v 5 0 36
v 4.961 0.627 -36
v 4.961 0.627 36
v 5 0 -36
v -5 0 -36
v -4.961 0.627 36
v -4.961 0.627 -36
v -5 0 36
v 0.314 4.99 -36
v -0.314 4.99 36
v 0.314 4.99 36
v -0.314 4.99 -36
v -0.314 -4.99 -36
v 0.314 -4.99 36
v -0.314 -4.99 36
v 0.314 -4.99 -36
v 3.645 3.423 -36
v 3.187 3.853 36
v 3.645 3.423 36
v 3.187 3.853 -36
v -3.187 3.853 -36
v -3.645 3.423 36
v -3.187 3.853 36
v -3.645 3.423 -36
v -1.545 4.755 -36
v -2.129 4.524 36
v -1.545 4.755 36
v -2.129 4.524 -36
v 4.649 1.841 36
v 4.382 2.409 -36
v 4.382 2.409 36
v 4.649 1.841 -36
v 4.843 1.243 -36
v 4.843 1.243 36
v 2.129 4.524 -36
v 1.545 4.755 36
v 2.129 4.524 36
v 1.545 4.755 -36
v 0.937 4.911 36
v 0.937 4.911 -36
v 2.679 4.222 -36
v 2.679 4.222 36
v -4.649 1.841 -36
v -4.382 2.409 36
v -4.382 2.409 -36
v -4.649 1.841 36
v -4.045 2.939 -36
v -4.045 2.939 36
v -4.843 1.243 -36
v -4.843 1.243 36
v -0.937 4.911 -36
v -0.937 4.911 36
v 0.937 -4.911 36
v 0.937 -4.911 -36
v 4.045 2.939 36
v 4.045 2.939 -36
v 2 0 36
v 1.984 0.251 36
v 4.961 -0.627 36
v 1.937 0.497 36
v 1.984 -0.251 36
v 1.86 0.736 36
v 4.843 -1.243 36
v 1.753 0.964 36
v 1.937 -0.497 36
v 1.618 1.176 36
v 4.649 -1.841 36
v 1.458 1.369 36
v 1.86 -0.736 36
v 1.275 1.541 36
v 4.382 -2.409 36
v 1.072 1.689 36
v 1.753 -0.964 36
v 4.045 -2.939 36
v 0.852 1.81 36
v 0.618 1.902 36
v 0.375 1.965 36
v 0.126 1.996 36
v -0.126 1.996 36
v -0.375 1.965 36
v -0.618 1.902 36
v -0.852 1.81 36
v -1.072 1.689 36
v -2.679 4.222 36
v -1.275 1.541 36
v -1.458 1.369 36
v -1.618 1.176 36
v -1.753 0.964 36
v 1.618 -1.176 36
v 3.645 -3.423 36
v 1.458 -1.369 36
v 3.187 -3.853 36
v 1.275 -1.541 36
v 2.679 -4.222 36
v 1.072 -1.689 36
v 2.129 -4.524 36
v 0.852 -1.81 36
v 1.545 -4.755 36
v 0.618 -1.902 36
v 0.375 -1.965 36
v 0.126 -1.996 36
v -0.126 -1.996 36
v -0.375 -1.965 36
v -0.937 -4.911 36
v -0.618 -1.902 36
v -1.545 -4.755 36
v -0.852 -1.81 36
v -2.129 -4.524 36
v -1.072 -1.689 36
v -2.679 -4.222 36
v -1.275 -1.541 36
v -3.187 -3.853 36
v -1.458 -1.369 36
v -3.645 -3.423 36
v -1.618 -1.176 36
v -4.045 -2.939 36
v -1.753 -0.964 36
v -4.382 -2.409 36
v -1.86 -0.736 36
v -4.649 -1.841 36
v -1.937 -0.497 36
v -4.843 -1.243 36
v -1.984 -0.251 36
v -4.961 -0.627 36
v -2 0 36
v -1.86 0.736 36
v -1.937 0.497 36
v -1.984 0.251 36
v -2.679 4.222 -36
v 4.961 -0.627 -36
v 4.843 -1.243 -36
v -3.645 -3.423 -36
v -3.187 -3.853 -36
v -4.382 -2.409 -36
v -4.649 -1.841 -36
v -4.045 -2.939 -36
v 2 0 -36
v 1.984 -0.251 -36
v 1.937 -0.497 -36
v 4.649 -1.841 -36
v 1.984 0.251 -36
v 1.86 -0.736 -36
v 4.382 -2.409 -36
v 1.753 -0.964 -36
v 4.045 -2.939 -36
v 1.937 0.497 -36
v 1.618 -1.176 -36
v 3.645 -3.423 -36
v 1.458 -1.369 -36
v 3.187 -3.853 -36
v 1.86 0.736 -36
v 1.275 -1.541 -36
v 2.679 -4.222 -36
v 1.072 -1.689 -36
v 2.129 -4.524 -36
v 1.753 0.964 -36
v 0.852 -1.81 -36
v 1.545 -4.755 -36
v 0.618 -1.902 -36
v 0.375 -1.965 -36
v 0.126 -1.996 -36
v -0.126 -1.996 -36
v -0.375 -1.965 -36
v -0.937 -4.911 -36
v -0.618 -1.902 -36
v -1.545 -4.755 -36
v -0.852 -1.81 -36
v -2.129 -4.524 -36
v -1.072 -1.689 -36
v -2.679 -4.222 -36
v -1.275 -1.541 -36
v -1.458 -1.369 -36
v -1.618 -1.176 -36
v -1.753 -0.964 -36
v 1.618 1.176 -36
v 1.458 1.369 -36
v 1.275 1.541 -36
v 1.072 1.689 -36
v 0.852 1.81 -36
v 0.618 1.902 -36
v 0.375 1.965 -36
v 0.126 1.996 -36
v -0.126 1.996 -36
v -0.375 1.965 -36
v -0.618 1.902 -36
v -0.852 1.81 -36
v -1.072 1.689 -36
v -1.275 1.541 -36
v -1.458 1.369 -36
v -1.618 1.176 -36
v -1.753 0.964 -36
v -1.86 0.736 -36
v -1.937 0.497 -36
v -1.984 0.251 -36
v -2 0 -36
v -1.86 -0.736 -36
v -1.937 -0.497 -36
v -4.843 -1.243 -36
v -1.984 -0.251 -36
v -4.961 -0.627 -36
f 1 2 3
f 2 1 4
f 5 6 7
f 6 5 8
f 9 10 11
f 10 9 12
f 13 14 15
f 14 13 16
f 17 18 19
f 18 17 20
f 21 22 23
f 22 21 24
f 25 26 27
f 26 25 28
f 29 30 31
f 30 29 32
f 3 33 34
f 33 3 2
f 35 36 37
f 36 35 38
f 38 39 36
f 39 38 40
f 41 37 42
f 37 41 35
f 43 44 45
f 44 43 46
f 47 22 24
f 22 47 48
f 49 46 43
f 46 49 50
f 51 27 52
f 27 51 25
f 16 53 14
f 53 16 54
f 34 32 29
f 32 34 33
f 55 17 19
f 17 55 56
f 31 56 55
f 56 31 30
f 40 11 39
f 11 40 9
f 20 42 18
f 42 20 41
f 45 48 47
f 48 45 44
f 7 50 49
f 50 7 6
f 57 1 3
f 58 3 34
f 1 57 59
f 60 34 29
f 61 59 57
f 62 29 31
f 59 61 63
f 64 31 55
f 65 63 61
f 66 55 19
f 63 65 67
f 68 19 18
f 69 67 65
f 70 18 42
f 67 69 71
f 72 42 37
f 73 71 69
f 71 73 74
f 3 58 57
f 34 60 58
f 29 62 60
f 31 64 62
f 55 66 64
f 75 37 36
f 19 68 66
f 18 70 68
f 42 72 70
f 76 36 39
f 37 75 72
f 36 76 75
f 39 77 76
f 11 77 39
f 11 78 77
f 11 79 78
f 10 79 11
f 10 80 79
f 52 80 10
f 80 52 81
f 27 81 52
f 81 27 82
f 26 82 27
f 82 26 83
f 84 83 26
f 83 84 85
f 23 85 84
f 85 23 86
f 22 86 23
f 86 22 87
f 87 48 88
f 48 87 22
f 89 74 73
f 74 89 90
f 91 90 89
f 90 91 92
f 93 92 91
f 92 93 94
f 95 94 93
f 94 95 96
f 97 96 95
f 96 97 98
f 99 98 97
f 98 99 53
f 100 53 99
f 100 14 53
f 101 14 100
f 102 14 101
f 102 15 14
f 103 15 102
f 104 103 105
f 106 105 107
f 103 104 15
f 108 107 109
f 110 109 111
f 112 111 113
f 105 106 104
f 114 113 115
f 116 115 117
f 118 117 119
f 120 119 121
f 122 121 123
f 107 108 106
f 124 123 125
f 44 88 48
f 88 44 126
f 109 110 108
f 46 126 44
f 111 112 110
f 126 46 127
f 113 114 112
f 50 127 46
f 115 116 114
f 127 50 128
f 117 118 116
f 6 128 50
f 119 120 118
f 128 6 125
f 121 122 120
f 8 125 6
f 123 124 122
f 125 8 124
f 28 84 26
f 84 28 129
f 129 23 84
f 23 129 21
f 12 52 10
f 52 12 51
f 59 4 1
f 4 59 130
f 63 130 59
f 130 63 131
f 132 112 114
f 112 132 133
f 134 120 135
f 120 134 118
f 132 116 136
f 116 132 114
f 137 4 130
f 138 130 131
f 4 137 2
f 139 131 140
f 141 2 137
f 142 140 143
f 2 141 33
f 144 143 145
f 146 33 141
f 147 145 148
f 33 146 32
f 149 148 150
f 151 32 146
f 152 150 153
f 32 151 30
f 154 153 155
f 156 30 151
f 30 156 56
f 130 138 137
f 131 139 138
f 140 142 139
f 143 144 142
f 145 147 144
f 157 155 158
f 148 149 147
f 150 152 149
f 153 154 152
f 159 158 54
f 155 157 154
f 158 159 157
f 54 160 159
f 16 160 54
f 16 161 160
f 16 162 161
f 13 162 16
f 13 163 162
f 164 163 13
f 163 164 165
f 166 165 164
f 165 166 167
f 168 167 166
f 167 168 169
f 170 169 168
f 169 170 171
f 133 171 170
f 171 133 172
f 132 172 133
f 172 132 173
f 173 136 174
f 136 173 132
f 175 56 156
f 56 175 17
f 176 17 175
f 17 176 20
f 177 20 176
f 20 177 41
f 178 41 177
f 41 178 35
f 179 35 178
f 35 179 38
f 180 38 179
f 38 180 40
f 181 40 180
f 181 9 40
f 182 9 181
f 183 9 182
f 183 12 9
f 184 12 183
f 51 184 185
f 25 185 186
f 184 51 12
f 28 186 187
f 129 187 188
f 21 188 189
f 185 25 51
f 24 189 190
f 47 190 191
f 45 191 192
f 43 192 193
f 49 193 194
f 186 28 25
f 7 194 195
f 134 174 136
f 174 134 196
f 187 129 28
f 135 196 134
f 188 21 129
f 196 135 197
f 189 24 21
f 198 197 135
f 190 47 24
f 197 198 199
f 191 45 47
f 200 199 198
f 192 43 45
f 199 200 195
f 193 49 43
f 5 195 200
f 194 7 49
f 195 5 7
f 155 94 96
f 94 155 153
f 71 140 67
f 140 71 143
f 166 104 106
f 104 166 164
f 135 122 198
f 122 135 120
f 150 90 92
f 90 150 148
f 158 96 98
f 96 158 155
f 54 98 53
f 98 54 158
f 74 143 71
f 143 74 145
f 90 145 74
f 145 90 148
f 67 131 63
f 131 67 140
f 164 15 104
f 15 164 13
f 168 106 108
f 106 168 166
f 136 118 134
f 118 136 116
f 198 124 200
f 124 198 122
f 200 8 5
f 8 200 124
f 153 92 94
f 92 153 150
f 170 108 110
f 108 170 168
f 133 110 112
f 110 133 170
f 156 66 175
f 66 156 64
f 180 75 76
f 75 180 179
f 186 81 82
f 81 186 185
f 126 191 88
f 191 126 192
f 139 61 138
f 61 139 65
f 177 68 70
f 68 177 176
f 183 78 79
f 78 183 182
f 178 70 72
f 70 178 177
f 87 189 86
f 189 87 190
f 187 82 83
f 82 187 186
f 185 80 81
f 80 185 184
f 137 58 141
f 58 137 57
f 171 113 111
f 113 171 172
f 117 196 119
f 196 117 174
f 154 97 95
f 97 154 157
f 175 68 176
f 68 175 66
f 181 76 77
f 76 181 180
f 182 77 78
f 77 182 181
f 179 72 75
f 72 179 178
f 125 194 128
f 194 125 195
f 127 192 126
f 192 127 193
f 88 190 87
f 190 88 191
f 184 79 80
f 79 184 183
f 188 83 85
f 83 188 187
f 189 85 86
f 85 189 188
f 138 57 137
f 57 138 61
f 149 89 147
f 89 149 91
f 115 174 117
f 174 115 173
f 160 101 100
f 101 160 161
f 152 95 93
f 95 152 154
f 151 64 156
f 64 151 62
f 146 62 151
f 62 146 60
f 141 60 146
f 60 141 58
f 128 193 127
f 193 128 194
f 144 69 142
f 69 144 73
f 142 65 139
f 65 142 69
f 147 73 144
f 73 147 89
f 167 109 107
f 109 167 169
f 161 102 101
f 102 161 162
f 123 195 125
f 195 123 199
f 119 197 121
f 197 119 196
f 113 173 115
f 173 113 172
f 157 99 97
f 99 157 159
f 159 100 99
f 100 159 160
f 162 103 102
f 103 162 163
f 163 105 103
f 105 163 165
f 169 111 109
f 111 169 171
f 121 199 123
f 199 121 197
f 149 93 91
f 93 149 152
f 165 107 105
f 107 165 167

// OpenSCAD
$fn = 50;


difference() {
	union() {
		translate(v = [0, 0, -36.0000000000]) {
			cylinder(h = 72, r = 5.0000000000);
		}
	}
	union() {
		translate(v = [0, 0, -100.0000000000]) {
			cylinder(h = 200, r = 2);
		}
	}
}
